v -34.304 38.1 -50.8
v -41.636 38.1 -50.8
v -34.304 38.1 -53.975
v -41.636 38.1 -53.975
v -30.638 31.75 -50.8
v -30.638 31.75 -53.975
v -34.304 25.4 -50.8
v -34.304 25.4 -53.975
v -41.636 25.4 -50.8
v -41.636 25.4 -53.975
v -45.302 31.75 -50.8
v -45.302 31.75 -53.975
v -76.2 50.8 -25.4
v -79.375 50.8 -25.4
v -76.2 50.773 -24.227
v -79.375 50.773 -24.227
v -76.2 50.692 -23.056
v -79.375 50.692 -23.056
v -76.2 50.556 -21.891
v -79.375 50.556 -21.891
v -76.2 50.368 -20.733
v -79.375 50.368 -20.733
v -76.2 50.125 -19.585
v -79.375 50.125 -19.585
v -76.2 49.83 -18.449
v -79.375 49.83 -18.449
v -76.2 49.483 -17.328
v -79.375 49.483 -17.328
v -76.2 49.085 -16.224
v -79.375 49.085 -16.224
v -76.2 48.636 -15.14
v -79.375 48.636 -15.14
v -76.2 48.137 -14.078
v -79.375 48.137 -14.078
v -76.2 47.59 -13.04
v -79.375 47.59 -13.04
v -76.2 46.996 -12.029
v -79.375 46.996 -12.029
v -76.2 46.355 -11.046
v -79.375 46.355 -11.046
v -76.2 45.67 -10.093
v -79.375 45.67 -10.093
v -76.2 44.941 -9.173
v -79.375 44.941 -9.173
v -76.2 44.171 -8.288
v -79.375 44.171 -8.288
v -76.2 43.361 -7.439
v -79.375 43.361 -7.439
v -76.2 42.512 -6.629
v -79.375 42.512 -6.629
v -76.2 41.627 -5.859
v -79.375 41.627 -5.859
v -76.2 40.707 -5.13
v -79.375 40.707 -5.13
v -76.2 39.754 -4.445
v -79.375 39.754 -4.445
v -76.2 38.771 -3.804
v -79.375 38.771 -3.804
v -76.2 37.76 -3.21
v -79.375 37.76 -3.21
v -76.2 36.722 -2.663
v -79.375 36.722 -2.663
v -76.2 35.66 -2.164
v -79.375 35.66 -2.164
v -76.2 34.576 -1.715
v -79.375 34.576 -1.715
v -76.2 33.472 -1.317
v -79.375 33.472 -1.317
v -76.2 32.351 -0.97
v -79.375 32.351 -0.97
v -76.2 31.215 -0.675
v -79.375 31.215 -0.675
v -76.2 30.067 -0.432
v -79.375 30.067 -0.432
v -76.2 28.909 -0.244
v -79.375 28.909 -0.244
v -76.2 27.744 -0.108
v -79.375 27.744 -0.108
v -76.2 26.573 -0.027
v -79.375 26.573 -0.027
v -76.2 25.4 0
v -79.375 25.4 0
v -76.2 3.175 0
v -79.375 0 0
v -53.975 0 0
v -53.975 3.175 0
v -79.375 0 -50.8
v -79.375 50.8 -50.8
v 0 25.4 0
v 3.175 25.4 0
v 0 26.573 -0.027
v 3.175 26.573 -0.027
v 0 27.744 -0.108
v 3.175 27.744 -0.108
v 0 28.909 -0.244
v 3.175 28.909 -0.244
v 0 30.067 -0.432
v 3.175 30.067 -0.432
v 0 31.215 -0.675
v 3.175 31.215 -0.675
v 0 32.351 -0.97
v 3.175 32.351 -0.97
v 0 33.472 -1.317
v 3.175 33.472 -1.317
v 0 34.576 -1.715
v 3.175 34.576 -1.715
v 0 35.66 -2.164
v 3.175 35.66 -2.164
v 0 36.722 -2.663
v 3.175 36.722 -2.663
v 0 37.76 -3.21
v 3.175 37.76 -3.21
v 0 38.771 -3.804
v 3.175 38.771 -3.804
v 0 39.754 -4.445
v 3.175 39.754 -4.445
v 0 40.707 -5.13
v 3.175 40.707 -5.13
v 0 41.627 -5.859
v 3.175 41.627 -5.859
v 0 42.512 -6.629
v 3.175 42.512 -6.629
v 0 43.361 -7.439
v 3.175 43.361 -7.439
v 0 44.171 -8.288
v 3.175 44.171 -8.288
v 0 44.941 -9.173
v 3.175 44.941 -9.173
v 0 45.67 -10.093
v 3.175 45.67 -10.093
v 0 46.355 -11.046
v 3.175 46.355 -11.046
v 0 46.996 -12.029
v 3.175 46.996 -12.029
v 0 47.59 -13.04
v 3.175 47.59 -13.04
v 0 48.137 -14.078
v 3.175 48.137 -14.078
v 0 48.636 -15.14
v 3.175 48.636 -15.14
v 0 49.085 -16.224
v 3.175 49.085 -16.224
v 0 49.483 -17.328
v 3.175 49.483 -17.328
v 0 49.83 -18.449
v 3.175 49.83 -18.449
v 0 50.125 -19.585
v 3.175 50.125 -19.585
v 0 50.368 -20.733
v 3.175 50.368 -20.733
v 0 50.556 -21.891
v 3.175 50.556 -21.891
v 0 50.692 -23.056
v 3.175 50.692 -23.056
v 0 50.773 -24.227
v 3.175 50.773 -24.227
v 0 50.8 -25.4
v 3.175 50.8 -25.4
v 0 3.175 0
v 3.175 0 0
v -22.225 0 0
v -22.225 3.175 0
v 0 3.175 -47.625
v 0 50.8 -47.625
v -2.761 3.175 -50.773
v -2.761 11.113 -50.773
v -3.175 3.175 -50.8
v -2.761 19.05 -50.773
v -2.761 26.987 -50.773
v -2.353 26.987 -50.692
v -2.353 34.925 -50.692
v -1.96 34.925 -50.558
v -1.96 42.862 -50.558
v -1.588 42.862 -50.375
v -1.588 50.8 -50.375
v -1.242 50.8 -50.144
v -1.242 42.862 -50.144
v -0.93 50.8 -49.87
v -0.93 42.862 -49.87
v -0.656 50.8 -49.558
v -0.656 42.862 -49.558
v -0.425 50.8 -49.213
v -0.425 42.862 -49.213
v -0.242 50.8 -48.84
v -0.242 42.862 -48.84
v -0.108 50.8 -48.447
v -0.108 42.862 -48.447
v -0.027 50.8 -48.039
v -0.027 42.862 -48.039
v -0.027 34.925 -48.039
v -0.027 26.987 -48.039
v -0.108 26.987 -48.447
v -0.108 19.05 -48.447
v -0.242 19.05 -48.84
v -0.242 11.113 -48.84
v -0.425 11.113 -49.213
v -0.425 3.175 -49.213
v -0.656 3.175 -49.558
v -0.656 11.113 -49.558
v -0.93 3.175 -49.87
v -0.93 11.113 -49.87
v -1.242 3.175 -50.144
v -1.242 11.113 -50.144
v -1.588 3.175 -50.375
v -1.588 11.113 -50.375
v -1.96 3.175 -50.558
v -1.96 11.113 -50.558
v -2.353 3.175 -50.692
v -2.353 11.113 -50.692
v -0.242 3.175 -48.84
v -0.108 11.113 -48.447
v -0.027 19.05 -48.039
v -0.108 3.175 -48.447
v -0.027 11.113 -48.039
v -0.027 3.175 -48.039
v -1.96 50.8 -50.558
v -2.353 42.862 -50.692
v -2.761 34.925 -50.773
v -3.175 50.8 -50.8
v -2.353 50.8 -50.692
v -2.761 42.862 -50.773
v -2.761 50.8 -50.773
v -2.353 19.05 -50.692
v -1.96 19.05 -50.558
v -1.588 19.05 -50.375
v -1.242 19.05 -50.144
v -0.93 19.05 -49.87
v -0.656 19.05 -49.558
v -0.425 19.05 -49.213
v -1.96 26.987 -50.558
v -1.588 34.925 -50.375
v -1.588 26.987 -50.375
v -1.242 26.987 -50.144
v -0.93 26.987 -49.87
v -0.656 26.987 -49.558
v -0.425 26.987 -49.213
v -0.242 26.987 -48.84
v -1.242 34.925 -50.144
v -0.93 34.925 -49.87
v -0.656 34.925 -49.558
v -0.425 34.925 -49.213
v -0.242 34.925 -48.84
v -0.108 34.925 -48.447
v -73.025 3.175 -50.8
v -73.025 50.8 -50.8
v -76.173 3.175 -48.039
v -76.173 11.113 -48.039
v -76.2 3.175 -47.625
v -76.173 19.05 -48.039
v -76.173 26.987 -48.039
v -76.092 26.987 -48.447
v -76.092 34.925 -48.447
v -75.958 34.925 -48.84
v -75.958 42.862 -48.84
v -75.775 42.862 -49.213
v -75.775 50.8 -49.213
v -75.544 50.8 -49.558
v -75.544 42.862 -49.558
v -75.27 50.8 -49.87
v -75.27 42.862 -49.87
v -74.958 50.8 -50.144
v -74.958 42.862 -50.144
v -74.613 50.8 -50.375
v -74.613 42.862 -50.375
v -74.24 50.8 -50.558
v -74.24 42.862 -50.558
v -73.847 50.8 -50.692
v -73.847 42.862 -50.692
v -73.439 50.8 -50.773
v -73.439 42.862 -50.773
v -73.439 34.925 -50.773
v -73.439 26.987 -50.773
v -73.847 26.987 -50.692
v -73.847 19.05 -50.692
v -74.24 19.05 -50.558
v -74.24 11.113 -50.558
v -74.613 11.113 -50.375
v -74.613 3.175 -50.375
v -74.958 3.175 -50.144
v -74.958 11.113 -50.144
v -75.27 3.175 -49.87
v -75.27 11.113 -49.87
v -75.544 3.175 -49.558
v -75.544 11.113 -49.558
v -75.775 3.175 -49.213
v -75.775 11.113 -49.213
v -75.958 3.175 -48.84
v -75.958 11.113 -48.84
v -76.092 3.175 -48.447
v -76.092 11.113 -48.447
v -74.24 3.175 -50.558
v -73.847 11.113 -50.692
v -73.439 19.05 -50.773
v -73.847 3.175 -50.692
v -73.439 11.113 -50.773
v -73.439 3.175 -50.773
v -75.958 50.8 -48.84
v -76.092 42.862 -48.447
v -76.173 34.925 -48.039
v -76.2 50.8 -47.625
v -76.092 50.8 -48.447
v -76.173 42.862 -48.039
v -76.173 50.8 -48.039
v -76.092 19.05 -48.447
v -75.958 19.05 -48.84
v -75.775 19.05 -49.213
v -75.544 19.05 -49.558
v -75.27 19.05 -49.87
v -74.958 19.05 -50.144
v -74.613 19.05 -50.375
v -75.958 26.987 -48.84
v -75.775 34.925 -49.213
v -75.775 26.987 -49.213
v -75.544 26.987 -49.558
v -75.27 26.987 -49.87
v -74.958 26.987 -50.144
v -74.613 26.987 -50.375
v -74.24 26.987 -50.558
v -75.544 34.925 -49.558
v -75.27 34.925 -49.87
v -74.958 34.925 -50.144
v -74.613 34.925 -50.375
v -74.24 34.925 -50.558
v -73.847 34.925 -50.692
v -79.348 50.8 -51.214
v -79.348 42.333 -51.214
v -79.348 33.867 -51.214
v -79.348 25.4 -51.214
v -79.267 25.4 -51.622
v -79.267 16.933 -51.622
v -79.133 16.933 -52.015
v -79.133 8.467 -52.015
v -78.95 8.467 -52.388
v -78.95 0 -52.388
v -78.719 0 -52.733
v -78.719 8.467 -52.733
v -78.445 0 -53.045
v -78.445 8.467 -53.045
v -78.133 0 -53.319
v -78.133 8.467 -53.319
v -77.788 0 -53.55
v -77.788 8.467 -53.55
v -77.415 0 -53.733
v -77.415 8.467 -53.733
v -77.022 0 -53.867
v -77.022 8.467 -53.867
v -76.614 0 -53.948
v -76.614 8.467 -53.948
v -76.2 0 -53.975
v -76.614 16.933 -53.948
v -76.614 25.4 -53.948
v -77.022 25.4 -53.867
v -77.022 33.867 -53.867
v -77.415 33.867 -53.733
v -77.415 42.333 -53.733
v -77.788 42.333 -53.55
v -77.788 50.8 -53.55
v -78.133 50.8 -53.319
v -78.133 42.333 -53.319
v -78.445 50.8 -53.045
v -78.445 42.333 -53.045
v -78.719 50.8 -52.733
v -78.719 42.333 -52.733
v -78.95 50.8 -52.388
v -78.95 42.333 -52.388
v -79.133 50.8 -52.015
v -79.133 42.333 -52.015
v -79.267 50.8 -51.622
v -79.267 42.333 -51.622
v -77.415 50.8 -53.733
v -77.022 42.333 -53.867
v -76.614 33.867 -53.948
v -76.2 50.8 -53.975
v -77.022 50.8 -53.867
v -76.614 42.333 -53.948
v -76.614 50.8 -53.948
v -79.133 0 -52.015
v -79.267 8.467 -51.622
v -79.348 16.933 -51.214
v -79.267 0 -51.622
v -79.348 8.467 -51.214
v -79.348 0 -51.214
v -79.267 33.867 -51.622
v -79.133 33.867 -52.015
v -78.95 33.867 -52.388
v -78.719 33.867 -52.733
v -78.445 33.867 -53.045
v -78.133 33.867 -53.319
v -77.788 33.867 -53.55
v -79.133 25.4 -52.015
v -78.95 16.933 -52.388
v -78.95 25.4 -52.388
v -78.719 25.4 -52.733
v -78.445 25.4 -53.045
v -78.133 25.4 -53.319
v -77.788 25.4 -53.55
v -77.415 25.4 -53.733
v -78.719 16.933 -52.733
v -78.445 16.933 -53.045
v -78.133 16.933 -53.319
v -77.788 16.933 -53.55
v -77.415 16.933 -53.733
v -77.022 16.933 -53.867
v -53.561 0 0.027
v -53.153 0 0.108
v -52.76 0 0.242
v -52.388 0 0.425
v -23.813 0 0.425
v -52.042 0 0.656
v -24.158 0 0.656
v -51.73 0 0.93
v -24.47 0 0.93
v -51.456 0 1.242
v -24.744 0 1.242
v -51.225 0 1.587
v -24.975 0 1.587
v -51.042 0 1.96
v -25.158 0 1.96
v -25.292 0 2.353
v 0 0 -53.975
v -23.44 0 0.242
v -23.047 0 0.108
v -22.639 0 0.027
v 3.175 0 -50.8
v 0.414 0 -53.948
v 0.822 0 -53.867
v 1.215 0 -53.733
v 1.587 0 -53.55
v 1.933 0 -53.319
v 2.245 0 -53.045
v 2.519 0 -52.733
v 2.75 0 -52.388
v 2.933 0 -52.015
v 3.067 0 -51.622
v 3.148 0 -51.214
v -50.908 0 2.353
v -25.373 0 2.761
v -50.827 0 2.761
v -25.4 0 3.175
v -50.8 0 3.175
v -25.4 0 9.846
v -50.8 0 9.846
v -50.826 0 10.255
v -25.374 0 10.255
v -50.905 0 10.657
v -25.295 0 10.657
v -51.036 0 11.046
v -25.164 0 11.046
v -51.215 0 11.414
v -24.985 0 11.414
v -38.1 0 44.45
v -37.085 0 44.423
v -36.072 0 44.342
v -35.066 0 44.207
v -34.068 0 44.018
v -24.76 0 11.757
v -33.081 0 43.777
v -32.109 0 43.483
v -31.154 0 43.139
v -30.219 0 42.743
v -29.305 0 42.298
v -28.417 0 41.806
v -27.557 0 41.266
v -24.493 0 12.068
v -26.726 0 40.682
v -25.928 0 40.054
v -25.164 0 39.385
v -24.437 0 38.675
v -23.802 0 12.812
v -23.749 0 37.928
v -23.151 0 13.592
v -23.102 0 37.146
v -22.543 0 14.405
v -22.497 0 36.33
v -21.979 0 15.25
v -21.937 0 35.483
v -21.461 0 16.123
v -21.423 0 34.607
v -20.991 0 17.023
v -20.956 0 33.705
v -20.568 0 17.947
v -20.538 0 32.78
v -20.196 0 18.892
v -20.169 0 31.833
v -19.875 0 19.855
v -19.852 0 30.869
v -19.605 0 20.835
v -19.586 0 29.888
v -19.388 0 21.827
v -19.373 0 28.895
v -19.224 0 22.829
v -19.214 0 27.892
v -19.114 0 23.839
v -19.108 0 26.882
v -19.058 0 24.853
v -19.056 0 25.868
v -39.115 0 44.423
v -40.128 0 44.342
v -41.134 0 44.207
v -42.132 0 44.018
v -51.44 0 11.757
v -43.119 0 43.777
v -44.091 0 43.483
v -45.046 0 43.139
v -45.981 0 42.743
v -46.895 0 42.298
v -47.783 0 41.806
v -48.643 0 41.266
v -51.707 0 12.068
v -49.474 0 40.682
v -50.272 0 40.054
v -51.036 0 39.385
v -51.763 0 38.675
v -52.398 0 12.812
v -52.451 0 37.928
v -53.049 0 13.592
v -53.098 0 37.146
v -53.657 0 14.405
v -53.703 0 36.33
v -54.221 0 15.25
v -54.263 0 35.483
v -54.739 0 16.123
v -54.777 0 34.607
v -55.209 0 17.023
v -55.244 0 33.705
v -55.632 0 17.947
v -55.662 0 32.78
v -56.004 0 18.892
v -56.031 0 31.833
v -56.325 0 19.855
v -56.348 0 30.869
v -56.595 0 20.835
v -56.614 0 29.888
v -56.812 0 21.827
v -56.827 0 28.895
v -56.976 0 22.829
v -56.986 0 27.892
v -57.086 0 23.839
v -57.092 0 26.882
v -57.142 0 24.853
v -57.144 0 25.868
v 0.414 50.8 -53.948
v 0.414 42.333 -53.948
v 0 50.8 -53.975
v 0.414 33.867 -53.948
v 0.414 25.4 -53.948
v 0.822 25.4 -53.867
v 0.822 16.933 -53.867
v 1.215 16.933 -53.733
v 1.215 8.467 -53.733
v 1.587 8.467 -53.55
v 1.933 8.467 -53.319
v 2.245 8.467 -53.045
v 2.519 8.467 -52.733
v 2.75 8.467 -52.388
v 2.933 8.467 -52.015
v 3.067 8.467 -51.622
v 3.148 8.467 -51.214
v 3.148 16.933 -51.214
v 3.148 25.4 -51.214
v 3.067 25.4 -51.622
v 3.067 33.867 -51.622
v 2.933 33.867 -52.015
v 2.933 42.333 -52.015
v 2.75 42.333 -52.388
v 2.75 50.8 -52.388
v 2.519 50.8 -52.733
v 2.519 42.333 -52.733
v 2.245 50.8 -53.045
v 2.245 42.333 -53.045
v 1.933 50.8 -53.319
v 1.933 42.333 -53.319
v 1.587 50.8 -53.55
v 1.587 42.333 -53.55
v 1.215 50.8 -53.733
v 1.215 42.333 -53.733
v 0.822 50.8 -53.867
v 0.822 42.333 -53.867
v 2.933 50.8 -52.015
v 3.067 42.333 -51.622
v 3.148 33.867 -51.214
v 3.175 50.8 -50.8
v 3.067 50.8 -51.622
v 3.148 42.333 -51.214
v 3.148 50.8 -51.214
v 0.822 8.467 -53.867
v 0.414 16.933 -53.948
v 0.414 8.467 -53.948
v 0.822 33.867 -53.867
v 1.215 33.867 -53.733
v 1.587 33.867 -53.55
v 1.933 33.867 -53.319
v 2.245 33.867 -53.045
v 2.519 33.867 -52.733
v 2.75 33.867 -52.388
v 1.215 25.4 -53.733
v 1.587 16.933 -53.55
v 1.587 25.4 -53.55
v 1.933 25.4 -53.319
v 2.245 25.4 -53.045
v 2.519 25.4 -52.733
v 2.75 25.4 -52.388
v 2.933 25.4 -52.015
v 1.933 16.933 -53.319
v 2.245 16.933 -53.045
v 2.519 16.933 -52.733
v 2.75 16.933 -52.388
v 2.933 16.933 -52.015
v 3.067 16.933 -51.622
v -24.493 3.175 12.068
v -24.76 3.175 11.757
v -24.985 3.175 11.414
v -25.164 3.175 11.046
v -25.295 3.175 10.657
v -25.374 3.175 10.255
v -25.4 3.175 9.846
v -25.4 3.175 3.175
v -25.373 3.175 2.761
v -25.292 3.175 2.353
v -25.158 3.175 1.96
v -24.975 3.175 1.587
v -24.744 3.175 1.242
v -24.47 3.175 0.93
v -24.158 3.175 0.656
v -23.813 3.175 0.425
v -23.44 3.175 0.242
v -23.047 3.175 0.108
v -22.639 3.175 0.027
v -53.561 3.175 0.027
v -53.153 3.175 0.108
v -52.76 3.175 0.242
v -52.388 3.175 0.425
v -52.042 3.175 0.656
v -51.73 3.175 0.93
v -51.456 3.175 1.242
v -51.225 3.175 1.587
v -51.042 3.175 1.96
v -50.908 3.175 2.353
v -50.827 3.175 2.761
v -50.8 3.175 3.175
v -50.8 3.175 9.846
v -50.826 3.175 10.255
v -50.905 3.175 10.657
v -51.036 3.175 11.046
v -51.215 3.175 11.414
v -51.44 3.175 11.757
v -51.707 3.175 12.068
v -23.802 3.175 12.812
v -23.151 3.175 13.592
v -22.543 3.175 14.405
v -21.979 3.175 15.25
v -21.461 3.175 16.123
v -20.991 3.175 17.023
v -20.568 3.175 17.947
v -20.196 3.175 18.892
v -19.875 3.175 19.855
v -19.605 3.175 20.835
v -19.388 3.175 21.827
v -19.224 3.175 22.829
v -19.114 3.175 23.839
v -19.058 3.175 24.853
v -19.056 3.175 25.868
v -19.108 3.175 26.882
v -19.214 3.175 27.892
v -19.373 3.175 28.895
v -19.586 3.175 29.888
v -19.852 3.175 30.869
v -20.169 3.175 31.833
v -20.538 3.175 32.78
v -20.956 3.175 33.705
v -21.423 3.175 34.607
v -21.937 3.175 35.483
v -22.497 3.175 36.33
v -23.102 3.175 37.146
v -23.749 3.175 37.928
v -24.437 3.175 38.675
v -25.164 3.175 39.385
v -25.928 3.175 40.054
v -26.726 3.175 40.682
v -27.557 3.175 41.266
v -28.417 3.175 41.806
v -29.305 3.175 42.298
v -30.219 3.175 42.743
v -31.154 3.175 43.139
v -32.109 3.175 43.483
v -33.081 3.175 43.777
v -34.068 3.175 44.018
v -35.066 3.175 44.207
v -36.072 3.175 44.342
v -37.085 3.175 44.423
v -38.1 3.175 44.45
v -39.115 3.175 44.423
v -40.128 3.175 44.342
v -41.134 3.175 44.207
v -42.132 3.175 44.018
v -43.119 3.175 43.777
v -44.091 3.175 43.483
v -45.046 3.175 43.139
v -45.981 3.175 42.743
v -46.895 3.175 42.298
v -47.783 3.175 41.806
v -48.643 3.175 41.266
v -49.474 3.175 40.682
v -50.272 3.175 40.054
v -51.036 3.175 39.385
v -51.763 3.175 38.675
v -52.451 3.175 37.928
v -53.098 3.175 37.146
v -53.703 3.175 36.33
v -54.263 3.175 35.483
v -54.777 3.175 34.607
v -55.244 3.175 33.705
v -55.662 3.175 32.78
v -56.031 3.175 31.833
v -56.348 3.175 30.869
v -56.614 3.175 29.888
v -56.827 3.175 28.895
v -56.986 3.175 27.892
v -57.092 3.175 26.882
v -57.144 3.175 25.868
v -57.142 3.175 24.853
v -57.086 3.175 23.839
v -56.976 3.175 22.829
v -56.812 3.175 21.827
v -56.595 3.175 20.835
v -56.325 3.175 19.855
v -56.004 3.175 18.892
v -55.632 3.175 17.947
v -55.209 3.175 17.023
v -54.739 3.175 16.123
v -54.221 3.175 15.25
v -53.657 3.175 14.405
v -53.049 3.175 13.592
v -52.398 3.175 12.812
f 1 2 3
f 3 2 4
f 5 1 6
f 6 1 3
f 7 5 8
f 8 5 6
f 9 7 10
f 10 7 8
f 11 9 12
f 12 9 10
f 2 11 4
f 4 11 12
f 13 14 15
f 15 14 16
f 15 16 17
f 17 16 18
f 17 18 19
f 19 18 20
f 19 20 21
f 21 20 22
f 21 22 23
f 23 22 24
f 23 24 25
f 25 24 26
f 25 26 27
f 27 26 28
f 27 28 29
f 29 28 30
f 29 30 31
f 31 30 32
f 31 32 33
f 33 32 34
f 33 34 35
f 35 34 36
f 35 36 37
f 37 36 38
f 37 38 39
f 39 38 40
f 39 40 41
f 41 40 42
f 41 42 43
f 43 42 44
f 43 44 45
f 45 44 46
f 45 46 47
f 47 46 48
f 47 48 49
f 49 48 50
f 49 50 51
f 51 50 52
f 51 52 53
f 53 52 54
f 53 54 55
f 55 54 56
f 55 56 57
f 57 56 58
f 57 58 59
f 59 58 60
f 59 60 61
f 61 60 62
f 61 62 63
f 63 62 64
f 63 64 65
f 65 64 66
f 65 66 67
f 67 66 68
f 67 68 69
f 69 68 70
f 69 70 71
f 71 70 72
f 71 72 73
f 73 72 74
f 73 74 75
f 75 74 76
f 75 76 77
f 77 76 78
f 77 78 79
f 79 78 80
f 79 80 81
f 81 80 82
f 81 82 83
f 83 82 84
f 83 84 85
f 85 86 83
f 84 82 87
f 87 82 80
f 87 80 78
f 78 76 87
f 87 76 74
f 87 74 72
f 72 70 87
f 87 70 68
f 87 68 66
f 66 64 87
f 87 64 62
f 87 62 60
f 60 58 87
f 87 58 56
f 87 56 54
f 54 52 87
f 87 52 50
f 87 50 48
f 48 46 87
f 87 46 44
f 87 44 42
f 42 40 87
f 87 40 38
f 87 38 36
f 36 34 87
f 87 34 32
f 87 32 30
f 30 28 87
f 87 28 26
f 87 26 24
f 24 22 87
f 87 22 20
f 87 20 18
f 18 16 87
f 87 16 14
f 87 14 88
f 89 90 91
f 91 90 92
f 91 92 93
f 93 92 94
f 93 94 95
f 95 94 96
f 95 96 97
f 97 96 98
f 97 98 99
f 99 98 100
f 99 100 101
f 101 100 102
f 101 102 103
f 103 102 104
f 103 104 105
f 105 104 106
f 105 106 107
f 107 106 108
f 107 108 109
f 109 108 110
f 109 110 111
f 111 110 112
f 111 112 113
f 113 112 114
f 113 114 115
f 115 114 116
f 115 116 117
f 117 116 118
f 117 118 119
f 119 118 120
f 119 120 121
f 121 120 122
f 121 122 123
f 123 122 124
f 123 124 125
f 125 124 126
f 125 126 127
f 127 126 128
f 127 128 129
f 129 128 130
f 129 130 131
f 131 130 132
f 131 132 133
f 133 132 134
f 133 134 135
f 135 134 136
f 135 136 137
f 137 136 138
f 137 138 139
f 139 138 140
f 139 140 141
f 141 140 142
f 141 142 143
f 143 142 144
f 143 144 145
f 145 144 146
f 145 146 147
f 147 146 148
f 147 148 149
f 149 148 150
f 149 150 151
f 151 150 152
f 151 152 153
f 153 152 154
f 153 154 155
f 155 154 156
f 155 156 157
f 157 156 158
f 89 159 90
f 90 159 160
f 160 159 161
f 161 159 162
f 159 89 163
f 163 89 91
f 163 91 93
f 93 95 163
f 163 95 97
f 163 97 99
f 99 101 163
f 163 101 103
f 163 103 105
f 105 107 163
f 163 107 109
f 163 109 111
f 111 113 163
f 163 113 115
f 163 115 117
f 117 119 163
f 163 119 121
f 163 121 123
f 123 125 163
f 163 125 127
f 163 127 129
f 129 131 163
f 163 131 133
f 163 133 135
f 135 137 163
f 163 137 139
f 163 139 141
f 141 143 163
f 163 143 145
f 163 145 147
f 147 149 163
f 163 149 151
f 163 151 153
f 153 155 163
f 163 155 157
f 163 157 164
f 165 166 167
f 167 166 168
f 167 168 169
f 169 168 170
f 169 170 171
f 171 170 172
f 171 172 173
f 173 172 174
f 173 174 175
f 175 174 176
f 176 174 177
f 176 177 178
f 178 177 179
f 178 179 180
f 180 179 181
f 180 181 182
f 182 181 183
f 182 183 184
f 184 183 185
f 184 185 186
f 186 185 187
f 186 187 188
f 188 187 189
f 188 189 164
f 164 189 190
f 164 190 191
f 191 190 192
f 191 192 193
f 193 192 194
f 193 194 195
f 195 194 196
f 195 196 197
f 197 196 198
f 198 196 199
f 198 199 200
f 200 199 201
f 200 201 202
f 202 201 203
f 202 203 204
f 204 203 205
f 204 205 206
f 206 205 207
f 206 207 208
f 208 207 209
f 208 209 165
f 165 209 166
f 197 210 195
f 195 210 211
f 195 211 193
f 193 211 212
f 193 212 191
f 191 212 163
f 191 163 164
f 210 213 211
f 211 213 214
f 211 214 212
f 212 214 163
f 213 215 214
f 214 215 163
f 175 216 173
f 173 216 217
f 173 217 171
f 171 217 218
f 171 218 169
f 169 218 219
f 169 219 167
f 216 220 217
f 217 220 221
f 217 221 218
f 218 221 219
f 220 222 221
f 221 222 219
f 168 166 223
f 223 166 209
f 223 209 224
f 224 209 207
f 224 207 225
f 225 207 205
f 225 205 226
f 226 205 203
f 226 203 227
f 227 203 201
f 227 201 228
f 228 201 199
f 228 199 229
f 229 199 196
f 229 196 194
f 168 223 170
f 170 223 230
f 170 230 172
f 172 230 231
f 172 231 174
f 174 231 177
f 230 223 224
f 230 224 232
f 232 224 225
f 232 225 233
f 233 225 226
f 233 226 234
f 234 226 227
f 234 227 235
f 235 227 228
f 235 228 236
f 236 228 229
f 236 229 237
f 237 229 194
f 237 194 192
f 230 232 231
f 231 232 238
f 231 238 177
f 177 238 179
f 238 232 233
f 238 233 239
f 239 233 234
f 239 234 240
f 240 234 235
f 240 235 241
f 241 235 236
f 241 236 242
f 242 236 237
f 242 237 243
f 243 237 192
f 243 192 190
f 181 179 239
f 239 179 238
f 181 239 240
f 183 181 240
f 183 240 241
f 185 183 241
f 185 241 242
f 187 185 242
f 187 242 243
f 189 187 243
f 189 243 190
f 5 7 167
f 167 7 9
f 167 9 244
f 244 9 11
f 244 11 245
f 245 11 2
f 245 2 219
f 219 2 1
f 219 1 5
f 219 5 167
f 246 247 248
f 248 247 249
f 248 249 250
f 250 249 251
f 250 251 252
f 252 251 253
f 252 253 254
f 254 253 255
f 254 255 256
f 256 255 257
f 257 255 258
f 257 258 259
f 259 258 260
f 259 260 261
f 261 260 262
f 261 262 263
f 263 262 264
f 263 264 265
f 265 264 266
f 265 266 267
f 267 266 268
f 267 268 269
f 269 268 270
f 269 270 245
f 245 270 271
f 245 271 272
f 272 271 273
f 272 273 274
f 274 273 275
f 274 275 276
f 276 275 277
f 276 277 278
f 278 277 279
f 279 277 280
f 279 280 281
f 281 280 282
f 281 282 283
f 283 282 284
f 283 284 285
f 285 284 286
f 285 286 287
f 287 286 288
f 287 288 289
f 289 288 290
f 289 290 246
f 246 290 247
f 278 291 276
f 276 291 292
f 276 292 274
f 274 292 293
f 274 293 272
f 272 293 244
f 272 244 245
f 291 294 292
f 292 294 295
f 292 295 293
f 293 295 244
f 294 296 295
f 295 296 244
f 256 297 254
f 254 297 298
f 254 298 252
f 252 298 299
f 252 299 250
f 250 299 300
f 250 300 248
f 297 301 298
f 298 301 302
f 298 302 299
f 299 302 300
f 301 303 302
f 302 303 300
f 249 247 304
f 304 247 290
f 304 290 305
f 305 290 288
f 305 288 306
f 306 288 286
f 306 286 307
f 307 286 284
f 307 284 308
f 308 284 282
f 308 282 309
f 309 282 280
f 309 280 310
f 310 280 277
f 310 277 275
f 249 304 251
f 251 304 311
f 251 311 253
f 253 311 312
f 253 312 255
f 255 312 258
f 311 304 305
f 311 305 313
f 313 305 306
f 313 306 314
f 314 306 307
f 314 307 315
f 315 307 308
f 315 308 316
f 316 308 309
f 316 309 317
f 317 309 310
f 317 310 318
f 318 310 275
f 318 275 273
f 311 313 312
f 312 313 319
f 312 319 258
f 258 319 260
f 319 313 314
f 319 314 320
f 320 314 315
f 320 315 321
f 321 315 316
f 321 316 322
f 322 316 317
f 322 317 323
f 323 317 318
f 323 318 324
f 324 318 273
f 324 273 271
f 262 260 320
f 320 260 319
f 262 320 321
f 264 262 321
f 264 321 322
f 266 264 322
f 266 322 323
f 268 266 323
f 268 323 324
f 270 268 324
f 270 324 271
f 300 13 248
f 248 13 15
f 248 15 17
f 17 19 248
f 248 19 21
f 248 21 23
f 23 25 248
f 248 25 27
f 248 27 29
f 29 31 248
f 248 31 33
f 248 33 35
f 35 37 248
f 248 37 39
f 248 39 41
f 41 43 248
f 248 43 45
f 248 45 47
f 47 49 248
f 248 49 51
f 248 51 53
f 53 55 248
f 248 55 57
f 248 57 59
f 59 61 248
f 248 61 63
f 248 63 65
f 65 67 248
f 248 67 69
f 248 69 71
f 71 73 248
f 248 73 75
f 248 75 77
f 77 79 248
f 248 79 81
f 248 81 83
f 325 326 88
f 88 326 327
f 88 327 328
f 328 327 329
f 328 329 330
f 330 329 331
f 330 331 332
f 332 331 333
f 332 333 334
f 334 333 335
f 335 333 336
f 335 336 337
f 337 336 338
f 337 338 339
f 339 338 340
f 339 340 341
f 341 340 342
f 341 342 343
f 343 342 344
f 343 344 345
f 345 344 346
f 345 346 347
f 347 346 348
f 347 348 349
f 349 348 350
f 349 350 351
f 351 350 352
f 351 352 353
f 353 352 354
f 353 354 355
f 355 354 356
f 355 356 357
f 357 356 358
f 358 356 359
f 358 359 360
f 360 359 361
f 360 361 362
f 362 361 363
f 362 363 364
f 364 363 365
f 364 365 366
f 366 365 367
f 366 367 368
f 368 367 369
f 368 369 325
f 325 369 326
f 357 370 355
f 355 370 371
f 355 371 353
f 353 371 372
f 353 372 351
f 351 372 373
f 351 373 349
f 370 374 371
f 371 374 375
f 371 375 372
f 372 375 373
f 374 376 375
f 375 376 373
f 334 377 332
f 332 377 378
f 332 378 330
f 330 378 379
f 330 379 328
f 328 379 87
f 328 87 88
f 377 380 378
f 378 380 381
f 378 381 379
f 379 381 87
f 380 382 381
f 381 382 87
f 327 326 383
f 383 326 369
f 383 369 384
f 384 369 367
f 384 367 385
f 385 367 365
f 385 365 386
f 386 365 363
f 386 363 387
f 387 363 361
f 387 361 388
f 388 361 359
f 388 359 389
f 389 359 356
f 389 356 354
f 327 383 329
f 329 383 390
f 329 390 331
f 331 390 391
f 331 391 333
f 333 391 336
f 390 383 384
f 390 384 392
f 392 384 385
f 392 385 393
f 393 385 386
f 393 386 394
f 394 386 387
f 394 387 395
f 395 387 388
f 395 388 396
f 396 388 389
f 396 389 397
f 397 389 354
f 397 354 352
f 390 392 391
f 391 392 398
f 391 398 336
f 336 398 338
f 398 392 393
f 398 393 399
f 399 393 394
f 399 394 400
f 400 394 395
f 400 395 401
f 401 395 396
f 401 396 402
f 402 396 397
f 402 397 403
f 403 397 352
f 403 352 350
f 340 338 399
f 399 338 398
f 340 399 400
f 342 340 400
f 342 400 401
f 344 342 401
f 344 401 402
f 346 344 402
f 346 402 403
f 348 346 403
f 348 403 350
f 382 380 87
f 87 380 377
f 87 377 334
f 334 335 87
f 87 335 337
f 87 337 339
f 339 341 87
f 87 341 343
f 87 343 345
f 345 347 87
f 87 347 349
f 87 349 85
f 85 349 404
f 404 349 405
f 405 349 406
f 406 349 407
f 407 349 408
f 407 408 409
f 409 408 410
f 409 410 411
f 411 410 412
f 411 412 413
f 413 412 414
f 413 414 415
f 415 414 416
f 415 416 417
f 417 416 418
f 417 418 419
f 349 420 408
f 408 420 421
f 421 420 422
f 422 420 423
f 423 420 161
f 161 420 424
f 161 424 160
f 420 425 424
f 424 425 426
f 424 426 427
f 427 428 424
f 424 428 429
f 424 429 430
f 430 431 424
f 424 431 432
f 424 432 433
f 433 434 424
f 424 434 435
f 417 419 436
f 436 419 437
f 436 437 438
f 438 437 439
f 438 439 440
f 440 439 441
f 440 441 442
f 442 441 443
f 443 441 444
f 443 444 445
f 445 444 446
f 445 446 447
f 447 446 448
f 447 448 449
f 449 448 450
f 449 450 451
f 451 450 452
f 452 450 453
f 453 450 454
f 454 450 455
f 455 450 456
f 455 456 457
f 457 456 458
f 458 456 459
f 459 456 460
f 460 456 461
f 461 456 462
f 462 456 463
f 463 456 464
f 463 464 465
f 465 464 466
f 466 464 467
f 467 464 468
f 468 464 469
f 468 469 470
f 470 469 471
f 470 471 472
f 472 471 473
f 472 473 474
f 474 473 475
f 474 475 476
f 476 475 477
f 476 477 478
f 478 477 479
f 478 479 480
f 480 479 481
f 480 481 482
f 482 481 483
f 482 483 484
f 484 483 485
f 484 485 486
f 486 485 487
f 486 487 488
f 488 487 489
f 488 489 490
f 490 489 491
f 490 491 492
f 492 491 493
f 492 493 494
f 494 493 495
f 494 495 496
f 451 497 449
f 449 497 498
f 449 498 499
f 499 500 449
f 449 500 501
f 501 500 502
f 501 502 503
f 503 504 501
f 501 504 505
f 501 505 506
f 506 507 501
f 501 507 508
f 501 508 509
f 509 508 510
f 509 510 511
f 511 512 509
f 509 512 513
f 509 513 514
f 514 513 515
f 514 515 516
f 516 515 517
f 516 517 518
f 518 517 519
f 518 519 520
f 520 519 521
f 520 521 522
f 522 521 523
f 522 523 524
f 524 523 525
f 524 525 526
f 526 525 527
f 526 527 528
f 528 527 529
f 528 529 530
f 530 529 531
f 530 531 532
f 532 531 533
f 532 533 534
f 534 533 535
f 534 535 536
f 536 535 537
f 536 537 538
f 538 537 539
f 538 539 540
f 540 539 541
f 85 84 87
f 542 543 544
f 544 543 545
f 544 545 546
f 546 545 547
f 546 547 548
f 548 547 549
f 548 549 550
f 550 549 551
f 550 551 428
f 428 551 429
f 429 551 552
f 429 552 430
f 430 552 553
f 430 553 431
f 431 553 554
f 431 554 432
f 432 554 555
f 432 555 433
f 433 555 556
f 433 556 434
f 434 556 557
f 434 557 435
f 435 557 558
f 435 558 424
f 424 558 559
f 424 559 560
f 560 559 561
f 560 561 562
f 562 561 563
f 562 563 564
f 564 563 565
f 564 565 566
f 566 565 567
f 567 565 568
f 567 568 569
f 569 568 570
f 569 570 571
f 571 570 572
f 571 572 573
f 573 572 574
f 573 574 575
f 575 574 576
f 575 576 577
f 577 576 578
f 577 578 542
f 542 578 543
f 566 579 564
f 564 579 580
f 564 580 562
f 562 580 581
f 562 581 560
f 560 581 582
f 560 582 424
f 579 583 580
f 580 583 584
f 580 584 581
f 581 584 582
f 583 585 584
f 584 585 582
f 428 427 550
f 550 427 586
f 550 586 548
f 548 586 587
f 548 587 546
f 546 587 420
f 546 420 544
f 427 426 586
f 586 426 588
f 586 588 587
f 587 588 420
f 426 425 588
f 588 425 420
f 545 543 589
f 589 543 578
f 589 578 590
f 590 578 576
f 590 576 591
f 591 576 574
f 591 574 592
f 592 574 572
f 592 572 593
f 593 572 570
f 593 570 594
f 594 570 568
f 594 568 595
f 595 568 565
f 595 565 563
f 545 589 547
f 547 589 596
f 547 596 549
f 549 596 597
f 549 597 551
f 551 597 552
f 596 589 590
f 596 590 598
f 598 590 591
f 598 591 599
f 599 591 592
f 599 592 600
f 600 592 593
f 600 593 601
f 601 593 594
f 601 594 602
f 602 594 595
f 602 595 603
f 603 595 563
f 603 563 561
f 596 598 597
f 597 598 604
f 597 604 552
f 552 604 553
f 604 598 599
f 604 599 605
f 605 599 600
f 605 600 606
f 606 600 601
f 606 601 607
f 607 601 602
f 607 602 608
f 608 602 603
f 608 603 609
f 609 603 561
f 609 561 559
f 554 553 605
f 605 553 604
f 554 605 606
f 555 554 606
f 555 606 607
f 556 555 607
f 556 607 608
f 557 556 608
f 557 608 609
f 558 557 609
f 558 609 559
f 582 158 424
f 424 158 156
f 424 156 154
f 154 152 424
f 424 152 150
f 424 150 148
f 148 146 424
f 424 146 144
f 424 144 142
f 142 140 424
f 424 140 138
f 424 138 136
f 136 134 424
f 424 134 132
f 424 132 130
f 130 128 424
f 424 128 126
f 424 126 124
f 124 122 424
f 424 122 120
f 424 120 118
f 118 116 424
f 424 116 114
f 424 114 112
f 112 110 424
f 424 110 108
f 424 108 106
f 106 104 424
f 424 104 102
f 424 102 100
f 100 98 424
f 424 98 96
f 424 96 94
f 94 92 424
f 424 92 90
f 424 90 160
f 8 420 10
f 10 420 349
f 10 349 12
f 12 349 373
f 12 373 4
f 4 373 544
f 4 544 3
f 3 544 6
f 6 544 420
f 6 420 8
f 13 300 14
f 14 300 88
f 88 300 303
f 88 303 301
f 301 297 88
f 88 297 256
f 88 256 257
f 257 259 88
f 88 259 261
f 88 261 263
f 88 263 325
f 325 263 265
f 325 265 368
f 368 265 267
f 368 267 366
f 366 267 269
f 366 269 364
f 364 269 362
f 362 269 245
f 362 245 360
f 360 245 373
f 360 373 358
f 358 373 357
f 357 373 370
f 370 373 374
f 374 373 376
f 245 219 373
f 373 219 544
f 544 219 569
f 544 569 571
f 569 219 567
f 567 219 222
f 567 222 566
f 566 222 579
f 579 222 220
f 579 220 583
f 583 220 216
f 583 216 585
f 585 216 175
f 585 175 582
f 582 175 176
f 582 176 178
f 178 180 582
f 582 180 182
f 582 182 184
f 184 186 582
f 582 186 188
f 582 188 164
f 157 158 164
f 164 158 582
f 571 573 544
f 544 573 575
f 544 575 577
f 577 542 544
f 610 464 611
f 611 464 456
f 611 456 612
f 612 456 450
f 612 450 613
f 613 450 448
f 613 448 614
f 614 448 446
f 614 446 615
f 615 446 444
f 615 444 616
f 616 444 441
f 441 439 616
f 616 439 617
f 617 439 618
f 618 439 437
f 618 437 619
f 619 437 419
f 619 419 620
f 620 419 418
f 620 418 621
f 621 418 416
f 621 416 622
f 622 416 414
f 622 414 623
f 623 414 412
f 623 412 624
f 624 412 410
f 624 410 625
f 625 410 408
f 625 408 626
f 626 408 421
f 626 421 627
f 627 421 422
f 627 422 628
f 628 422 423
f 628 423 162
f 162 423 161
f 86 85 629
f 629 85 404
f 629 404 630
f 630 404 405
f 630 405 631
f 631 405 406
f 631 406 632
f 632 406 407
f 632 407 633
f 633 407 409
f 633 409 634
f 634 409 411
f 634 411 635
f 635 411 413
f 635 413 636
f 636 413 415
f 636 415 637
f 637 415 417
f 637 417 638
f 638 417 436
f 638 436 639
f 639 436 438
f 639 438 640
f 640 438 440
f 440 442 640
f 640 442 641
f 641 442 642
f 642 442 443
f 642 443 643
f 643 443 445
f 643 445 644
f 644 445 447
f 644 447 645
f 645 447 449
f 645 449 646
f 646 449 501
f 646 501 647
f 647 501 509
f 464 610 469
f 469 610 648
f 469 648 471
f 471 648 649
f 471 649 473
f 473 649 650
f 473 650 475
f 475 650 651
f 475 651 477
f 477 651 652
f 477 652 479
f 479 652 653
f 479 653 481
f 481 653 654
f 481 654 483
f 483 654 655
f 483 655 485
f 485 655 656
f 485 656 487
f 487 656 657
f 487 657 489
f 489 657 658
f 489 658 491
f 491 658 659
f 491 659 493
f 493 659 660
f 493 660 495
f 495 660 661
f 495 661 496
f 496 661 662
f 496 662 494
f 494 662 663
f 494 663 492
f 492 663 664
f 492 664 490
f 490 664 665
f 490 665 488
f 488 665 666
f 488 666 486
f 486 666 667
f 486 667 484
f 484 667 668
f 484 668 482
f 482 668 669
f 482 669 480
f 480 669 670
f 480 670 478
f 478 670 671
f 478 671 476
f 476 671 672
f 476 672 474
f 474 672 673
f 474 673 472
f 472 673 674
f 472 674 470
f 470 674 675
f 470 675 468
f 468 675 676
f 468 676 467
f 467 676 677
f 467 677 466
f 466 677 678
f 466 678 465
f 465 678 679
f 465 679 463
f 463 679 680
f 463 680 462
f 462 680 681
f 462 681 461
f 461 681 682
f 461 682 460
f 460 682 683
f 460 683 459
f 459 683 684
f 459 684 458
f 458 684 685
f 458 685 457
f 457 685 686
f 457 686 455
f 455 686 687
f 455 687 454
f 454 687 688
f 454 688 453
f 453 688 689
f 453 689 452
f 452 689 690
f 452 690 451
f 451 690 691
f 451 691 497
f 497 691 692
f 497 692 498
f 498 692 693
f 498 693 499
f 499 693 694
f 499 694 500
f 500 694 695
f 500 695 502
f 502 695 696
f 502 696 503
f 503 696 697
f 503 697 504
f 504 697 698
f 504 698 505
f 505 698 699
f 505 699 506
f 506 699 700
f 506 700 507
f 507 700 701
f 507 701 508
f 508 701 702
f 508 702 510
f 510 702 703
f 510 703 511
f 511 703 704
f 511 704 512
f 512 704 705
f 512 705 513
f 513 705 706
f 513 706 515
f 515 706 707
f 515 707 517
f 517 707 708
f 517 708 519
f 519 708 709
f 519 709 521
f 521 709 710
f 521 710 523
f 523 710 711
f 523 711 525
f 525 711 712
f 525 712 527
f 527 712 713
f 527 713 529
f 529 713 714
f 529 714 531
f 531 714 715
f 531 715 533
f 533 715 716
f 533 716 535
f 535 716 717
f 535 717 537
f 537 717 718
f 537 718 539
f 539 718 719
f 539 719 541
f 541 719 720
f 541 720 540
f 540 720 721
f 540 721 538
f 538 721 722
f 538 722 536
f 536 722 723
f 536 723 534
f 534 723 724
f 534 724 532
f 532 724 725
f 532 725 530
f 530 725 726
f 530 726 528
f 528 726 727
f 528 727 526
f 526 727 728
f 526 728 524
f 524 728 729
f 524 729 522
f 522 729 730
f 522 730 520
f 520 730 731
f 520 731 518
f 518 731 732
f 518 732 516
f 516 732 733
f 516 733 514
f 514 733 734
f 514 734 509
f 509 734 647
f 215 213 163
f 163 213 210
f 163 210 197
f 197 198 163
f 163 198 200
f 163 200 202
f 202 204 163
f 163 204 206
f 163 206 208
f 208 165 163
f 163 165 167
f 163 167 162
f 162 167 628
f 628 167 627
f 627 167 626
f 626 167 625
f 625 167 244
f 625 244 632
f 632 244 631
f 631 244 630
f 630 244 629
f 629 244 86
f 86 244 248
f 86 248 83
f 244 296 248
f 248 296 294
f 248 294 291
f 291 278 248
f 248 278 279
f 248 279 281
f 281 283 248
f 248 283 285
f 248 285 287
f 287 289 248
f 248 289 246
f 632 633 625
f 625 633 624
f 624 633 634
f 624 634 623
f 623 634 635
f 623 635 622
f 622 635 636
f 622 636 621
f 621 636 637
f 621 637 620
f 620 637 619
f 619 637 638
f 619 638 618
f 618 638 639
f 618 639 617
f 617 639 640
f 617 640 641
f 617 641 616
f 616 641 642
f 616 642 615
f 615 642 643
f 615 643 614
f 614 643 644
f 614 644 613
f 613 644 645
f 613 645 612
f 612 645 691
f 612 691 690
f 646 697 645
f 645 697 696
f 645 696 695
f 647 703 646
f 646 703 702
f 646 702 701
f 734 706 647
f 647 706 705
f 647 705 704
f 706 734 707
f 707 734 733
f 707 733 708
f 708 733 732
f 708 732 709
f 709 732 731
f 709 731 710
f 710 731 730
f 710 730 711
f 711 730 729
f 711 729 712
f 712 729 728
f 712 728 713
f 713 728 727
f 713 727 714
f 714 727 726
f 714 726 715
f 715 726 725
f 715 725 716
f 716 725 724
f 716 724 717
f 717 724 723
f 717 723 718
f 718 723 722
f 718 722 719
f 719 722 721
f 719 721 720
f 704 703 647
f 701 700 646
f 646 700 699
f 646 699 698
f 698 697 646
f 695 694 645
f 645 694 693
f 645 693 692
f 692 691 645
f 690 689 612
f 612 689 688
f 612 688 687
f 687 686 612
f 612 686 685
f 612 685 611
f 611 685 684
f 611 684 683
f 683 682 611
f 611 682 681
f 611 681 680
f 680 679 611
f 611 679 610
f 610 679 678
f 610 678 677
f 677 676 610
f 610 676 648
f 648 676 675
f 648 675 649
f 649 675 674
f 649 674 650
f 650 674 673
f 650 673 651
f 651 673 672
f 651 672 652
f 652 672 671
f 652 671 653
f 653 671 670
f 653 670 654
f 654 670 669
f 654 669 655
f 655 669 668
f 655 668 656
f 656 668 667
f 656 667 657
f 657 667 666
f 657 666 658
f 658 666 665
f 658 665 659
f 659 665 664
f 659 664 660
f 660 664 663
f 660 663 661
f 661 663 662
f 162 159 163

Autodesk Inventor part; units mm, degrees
ref_plane "YZ Plane" through (0, 0, 0) normal (1, 0, 0) x (0, 1, 0)
ref_plane "XZ Plane" through (0, 0, 0) normal (0, 1, 0) x (-1, 0, 0)
ref_plane "XY Plane" through (0, 0, 0) normal (0, 0, 1) x (1, 0, 0)
sketch "Sketch1" plane through (0, 0, 0) normal (0, 1, 0) x (-1, 0, 0)
  line L0 (0, 0) -> (76.2, 0)
  line L1 (76.2, 0) -> (76.2, -50.8)
  line L2 (76.2, -50.8) -> (0, -50.8)
  line L3 (0, -50.8) -> (0, 0)
  line L4 (50.8, 0) -> (25.4, 0)
  line L5 (25.4, 0) -> (25.4, 25.4)
  line L6 (25.4, 25.4) -> (50.8, 25.4)
  line L7 (50.8, 25.4) -> (50.8, 0)
  circle A0 centre (38.1, 25.4) radius 19.05
  point P0 (52.299, 0)
  point P1 (23.901, 0)
  point P2 (50.8, 11.201)
  point P3 (25.4, 11.201)
  dimension "d0" = 76.2
  dimension "d1" = 50.8
  dimension "d2" = 25.4
  dimension "d3" = 25.4
  dimension "d4" = 25.4
  dimension "d5" = 38.1
extrude "Extrusion2" add sketch "Sketch1" along normal blind 3.175
fillet "Fillet2" radius 3.175 4 edges at (-50.8, 1.5875, 11.201) (-50.8, 1.5875, 0) (-25.4, 1.5875, 0) (-25.4, 1.5875, 11.201)
sketch "Sketch2" plane through (0, 0, 0) normal (0, -1, 0) x (1, 0, 0)
  line L0 (0, 0) -> (0, -50.8) projected
  line L1 (0, 0) -> (3.175, 0)
  line L2 (3.175, 0) -> (3.175, -50.8)
  line L3 (3.175, -50.8) -> (0, -50.8)
  line L4 (0, -50.8) -> (0, 0)
  line L5 (-76.2, -50.8) -> (-76.2, 0) projected
  line L6 (-76.2, -50.8) -> (-79.375, -50.8)
  line L7 (-79.375, -50.8) -> (-79.375, 0)
  line L8 (-79.375, 0) -> (-76.2, 0)
  line L9 (-76.2, 0) -> (-76.2, -50.8)
  line L10 (3.175, -50.8) -> (-79.375, -50.8)
  line L11 (-79.375, -50.8) -> (-79.375, -53.975)
  line L12 (-79.375, -53.975) -> (3.175, -53.975)
  line L13 (3.175, -53.975) -> (3.175, -50.8)
  dimension "d12" = 3.175
  dimension "d13" = 3.175
  dimension "d14" = 3.175
extrude "Extrusion3" add sketch "Sketch2" against normal blind 50.8
fillet "Fillet3" radius 3.175 4 edges at (3.175, 25.4, -53.975) (-79.375, 25.4, -53.975) (-76.2, 26.9875, -50.8) (0, 26.9875, -50.8)
fillet "Fillet4" radius 25.4 2 edges at (1.5875, 50.8, 0) (-77.7875, 50.8, 0)
ref_plane "Work Plane1" through (-38.1, 0, 0) normal (1, 0, 0) x (0, 0, -1)
sketch "Sketch5" plane through (0, 0, -53.975) normal (0, 0, -1) x (-1, 0, 0)
  line L0 (76.2, 50.8) -> (76.2, 0) projected
  line L1 (0, 50.8) -> (76.2, 50.8) projected
  line L2 (0, 0) -> (0, 50.8) projected
  line L3 (76.2, 0) -> (0, 0) projected
  line L4 (34.3039, 38.1) -> (41.6363, 38.1)
  line L5 (41.6363, 38.1) -> (45.3025, 31.75)
  line L6 (45.3025, 31.75) -> (41.6363, 25.4)
  line L7 (41.6363, 25.4) -> (34.3039, 25.4)
  line L8 (34.3039, 25.4) -> (30.6378, 31.75)
  line L9 (30.6378, 31.75) -> (34.3039, 38.1)
  line L10 (0, 50.8) -> (76.2, 50.8) projected
  point P0 (0, 0)
  point P1 (37.9701, 31.75)
  dimension "d27" = 12.7
  dimension "d28" = 12.7
extrude "Extrusion6" cut sketch "Sketch5" against normal blind 25.4 contours L4 L5 L6 L7 L8 L9
properties part number "Prototype Base_3DPrint"
